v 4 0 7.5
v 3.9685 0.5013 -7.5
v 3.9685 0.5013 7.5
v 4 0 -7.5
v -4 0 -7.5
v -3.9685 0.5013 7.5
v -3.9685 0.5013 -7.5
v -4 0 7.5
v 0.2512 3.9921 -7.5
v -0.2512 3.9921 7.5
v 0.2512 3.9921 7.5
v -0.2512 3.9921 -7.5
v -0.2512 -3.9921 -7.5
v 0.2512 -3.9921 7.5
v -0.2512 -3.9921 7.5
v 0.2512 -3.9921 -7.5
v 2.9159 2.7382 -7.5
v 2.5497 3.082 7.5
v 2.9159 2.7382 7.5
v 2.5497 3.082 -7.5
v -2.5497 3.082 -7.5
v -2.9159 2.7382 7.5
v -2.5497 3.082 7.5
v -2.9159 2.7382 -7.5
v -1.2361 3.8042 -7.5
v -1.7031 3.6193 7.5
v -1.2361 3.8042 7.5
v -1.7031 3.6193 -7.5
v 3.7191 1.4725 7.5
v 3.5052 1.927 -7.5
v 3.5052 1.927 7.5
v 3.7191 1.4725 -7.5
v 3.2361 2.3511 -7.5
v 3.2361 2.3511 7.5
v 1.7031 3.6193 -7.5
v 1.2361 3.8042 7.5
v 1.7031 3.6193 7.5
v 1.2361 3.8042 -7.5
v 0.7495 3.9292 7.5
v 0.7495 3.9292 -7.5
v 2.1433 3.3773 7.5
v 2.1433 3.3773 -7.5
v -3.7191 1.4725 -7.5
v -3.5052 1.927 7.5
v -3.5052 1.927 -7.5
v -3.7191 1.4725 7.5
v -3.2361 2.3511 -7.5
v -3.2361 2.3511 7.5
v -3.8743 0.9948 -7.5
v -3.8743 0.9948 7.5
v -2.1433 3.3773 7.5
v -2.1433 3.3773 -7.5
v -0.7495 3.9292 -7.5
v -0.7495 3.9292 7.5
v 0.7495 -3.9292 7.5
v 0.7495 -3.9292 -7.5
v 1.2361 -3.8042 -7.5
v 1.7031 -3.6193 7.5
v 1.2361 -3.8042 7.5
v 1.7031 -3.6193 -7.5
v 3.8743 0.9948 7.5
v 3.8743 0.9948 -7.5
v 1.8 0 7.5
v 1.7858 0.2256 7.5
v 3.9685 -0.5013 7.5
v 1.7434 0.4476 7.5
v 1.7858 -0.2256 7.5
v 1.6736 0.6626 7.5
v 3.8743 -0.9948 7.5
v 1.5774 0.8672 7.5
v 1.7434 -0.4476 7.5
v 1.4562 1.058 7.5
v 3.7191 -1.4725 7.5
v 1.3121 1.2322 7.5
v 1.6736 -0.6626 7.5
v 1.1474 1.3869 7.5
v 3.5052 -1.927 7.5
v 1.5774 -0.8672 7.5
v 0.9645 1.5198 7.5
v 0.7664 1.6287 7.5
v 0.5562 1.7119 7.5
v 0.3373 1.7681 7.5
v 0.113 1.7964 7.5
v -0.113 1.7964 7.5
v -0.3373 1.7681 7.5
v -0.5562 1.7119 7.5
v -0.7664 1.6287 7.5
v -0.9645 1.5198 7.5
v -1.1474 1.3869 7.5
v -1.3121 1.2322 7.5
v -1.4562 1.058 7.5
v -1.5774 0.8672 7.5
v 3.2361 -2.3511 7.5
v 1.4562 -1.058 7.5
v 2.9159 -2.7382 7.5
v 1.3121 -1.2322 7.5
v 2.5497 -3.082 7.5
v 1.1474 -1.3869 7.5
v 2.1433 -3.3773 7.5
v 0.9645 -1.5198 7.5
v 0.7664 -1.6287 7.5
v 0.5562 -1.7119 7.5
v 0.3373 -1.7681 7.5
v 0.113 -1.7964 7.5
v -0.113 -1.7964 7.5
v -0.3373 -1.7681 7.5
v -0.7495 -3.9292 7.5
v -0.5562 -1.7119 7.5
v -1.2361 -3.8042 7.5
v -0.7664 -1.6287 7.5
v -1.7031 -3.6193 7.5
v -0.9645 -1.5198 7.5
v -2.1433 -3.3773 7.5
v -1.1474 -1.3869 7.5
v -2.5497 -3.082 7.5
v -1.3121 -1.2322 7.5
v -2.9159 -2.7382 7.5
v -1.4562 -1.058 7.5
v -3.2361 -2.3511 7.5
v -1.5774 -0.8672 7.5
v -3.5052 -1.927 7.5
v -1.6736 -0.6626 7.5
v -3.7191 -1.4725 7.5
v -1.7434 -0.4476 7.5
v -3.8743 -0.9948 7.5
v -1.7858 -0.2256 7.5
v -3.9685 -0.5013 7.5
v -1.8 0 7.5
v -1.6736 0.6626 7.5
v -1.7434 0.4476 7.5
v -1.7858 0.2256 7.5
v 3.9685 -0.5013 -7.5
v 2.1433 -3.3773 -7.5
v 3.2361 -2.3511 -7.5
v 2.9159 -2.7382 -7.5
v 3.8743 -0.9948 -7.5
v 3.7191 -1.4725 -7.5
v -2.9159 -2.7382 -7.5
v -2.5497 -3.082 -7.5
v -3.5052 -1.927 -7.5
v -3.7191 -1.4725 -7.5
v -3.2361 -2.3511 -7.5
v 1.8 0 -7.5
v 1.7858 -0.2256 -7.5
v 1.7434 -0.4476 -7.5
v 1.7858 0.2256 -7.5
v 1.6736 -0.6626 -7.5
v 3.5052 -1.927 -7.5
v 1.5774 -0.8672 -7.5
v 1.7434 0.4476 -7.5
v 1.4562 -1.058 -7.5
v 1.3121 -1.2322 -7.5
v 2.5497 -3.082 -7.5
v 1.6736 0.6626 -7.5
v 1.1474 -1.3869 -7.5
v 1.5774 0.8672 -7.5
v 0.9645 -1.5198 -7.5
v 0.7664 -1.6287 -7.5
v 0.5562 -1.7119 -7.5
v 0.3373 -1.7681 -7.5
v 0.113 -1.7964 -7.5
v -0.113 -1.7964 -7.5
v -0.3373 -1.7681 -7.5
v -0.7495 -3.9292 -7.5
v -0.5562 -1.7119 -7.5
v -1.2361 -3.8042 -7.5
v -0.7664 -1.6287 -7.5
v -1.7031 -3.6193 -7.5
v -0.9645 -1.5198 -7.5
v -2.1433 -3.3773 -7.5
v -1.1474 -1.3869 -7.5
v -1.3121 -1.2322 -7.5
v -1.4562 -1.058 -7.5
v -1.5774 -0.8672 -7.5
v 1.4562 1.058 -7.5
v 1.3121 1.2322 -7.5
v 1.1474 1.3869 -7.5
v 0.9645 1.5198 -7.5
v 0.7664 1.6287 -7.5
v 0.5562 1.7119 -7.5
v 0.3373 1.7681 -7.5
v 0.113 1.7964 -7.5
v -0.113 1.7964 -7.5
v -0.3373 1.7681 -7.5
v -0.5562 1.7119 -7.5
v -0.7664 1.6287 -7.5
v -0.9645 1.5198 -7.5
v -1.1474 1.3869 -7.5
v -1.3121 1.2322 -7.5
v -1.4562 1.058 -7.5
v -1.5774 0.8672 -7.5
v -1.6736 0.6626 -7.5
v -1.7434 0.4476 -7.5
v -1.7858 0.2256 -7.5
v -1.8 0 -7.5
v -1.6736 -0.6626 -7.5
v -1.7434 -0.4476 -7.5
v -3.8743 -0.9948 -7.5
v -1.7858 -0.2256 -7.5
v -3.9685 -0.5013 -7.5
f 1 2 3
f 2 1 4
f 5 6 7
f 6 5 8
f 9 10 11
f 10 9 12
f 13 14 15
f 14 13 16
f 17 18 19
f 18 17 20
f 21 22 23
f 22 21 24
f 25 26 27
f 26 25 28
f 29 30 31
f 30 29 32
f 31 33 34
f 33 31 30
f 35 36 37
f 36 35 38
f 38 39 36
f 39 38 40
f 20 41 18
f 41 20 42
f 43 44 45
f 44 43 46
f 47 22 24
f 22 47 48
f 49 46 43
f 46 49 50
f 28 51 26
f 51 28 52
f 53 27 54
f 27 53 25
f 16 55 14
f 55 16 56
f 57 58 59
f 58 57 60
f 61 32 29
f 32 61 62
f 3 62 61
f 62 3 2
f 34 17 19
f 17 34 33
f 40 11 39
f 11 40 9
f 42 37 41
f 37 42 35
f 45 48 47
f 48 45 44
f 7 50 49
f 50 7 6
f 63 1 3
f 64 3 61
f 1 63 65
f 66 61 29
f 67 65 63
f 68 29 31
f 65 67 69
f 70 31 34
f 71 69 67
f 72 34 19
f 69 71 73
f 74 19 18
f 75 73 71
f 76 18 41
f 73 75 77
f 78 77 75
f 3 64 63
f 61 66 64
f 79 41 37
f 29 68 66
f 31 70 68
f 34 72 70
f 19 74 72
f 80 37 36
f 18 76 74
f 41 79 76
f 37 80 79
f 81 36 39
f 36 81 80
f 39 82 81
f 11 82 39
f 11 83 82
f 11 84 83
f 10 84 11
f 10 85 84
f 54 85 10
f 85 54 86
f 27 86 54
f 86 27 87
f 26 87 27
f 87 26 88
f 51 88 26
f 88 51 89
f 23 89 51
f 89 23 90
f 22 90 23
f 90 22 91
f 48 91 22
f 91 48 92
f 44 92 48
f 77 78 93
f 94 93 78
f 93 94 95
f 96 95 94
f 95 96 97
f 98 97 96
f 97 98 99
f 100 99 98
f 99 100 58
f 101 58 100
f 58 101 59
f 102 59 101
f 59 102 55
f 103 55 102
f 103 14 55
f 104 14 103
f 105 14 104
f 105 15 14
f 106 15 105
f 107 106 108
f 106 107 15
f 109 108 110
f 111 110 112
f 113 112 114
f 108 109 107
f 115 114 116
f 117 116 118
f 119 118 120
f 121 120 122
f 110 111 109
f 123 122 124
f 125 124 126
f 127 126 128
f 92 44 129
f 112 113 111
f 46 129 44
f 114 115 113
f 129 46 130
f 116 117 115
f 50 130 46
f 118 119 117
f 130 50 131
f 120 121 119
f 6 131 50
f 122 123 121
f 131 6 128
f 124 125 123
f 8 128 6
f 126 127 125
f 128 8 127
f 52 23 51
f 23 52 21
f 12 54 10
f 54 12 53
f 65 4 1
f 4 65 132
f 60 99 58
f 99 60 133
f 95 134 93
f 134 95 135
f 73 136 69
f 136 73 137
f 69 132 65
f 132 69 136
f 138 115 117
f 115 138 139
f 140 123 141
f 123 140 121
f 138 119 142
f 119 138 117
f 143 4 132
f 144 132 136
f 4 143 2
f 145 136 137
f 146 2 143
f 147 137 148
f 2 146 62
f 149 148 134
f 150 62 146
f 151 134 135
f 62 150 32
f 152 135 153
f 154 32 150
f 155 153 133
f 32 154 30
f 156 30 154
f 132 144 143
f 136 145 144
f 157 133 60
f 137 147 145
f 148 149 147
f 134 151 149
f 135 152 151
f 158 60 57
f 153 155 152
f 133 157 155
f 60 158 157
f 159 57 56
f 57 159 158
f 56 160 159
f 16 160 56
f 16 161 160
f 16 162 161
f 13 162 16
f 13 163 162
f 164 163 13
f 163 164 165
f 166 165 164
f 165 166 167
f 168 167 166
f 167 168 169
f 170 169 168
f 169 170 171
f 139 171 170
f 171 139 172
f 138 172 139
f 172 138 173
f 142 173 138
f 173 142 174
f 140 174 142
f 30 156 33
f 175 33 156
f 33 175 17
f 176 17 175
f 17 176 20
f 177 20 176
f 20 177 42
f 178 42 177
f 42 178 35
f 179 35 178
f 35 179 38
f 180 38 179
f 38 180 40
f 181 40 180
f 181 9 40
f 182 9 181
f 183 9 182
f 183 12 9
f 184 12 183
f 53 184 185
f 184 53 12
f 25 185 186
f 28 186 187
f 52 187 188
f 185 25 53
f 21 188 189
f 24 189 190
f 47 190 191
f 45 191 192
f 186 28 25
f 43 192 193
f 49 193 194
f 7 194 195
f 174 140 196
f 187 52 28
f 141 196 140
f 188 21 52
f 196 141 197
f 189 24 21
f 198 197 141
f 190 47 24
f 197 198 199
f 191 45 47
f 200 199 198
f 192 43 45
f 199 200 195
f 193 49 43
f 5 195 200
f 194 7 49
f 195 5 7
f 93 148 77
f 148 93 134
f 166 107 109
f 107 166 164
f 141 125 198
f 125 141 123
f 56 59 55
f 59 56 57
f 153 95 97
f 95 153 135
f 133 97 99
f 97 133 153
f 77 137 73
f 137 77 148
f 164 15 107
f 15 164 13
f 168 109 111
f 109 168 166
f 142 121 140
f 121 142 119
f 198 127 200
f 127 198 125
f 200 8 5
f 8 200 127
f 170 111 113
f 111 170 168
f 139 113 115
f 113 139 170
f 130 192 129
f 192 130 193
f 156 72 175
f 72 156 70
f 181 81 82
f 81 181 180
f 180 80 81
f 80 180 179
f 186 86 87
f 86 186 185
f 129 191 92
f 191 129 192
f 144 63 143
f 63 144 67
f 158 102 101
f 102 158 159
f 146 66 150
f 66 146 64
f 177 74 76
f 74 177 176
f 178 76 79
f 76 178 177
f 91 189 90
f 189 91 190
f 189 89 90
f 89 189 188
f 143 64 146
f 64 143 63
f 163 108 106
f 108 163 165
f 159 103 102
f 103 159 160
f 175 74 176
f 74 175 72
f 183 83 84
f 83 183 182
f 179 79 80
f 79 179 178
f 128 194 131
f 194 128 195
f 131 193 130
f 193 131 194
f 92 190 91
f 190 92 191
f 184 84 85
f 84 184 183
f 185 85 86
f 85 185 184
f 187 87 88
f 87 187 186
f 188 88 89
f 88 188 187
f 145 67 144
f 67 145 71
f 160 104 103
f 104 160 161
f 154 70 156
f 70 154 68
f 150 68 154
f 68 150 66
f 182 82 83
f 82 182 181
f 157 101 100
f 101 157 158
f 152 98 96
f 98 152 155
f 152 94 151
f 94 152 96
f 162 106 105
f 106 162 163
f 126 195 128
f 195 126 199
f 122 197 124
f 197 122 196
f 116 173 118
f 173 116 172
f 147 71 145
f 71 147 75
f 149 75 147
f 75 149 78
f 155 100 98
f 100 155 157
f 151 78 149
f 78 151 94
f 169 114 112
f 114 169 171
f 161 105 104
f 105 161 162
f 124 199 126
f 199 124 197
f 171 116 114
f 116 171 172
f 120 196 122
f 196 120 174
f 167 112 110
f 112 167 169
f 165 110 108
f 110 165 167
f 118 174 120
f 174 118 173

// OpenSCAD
$fn = 50;


difference() {
	union() {
		translate(v = [0, 0, -7.5000000000]) {
			cylinder(h = 15, r = 4.0000000000);
		}
	}
	union() {
		translate(v = [0, 0, -100.0000000000]) {
			cylinder(h = 200, r = 1.8000000000);
		}
	}
}
